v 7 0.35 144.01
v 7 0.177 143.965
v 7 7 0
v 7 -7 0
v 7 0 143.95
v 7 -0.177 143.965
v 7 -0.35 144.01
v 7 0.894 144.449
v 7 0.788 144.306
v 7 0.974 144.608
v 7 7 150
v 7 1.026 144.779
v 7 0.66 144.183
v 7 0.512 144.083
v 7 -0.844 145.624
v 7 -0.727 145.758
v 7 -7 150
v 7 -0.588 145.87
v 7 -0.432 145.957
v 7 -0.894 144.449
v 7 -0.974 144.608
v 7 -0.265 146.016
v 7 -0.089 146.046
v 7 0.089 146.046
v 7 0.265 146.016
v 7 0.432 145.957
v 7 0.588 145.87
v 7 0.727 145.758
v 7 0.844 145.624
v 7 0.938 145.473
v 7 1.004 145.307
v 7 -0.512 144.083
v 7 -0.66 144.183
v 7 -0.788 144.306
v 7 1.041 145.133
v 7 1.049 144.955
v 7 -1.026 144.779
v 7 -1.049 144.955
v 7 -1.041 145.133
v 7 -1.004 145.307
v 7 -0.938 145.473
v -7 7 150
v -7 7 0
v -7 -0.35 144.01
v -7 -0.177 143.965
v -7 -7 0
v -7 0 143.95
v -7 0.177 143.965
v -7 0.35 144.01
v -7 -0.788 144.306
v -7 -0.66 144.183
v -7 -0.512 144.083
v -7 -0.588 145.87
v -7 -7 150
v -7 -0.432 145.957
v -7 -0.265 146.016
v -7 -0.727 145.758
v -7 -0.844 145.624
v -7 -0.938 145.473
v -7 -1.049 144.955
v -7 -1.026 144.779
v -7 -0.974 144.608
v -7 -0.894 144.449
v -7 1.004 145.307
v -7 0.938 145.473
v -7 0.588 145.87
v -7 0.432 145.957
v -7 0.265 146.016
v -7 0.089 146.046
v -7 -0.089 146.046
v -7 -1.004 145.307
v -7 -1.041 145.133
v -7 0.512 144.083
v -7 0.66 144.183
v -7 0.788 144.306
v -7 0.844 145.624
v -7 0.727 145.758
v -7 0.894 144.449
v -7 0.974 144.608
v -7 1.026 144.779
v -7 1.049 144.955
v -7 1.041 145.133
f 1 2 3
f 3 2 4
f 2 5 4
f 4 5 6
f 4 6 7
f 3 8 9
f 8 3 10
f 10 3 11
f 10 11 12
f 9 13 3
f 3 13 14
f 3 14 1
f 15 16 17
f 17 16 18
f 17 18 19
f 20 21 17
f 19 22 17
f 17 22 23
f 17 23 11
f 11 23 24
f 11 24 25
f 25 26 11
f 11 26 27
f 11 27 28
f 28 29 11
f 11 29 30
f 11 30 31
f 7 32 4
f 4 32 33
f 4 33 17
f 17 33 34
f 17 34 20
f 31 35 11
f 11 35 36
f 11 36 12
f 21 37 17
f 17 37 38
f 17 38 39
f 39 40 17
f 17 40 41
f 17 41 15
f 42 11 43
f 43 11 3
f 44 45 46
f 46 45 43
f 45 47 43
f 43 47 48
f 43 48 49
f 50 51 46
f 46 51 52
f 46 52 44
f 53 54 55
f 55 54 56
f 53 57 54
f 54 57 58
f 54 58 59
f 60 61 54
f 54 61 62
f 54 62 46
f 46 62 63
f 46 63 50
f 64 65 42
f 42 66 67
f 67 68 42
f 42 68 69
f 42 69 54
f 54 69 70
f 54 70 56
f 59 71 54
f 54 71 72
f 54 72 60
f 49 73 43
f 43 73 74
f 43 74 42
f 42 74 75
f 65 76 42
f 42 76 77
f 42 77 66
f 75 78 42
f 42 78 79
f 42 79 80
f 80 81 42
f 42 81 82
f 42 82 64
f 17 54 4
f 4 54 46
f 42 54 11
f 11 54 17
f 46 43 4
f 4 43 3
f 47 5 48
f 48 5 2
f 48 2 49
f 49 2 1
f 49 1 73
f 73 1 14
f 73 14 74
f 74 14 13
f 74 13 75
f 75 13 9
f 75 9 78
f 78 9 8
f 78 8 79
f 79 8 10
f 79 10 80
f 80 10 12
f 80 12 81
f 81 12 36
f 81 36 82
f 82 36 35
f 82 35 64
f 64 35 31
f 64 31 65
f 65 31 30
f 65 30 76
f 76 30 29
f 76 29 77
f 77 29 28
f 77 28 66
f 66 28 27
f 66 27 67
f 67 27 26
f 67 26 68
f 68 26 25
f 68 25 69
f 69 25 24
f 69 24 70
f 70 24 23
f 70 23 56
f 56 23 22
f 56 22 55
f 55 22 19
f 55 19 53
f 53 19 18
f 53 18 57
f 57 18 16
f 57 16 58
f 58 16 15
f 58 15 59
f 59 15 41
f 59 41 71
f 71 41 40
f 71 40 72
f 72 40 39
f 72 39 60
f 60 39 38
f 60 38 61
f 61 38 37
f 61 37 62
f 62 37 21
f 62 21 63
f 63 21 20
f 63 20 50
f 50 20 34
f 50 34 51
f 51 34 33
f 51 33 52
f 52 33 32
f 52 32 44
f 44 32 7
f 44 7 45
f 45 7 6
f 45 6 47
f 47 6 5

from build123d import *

# Parameters (mm, degrees)
SKETCH_1_W               = 14
SKETCH_1_H               = 14
EXTRUDE_1_DEPTH          = 150
CUT_EXTRUDE_1_DEPTH      = 151.326311736
CUT_EXTRUDE_1_DEPTH_BACK = 151.326311736
SKETCH_2_R               = 1.05


with BuildPart() as part:
    # ｽｹｯﾁ1 → ﾎﾞｽ - 押し出し1 (new body)
    with BuildSketch(Plane.XY):
        Rectangle(SKETCH_1_W, SKETCH_1_H)
    extrude(amount=EXTRUDE_1_DEPTH)

    # ｽｹｯﾁ2 → ｶｯﾄ - 押し出し1 (cut, two sides: drawn at the far end of the back side and taken through both)
    with BuildSketch(Plane(origin=(0, 0, 0), x_dir=(0, 0, -1), z_dir=(1, 0, 0)).offset(-CUT_EXTRUDE_1_DEPTH_BACK)):
        with Locations((-145, 0)):
            Circle(SKETCH_2_R)
    extrude(amount=CUT_EXTRUDE_1_DEPTH + CUT_EXTRUDE_1_DEPTH_BACK, mode=Mode.SUBTRACT)


solid = part.part
